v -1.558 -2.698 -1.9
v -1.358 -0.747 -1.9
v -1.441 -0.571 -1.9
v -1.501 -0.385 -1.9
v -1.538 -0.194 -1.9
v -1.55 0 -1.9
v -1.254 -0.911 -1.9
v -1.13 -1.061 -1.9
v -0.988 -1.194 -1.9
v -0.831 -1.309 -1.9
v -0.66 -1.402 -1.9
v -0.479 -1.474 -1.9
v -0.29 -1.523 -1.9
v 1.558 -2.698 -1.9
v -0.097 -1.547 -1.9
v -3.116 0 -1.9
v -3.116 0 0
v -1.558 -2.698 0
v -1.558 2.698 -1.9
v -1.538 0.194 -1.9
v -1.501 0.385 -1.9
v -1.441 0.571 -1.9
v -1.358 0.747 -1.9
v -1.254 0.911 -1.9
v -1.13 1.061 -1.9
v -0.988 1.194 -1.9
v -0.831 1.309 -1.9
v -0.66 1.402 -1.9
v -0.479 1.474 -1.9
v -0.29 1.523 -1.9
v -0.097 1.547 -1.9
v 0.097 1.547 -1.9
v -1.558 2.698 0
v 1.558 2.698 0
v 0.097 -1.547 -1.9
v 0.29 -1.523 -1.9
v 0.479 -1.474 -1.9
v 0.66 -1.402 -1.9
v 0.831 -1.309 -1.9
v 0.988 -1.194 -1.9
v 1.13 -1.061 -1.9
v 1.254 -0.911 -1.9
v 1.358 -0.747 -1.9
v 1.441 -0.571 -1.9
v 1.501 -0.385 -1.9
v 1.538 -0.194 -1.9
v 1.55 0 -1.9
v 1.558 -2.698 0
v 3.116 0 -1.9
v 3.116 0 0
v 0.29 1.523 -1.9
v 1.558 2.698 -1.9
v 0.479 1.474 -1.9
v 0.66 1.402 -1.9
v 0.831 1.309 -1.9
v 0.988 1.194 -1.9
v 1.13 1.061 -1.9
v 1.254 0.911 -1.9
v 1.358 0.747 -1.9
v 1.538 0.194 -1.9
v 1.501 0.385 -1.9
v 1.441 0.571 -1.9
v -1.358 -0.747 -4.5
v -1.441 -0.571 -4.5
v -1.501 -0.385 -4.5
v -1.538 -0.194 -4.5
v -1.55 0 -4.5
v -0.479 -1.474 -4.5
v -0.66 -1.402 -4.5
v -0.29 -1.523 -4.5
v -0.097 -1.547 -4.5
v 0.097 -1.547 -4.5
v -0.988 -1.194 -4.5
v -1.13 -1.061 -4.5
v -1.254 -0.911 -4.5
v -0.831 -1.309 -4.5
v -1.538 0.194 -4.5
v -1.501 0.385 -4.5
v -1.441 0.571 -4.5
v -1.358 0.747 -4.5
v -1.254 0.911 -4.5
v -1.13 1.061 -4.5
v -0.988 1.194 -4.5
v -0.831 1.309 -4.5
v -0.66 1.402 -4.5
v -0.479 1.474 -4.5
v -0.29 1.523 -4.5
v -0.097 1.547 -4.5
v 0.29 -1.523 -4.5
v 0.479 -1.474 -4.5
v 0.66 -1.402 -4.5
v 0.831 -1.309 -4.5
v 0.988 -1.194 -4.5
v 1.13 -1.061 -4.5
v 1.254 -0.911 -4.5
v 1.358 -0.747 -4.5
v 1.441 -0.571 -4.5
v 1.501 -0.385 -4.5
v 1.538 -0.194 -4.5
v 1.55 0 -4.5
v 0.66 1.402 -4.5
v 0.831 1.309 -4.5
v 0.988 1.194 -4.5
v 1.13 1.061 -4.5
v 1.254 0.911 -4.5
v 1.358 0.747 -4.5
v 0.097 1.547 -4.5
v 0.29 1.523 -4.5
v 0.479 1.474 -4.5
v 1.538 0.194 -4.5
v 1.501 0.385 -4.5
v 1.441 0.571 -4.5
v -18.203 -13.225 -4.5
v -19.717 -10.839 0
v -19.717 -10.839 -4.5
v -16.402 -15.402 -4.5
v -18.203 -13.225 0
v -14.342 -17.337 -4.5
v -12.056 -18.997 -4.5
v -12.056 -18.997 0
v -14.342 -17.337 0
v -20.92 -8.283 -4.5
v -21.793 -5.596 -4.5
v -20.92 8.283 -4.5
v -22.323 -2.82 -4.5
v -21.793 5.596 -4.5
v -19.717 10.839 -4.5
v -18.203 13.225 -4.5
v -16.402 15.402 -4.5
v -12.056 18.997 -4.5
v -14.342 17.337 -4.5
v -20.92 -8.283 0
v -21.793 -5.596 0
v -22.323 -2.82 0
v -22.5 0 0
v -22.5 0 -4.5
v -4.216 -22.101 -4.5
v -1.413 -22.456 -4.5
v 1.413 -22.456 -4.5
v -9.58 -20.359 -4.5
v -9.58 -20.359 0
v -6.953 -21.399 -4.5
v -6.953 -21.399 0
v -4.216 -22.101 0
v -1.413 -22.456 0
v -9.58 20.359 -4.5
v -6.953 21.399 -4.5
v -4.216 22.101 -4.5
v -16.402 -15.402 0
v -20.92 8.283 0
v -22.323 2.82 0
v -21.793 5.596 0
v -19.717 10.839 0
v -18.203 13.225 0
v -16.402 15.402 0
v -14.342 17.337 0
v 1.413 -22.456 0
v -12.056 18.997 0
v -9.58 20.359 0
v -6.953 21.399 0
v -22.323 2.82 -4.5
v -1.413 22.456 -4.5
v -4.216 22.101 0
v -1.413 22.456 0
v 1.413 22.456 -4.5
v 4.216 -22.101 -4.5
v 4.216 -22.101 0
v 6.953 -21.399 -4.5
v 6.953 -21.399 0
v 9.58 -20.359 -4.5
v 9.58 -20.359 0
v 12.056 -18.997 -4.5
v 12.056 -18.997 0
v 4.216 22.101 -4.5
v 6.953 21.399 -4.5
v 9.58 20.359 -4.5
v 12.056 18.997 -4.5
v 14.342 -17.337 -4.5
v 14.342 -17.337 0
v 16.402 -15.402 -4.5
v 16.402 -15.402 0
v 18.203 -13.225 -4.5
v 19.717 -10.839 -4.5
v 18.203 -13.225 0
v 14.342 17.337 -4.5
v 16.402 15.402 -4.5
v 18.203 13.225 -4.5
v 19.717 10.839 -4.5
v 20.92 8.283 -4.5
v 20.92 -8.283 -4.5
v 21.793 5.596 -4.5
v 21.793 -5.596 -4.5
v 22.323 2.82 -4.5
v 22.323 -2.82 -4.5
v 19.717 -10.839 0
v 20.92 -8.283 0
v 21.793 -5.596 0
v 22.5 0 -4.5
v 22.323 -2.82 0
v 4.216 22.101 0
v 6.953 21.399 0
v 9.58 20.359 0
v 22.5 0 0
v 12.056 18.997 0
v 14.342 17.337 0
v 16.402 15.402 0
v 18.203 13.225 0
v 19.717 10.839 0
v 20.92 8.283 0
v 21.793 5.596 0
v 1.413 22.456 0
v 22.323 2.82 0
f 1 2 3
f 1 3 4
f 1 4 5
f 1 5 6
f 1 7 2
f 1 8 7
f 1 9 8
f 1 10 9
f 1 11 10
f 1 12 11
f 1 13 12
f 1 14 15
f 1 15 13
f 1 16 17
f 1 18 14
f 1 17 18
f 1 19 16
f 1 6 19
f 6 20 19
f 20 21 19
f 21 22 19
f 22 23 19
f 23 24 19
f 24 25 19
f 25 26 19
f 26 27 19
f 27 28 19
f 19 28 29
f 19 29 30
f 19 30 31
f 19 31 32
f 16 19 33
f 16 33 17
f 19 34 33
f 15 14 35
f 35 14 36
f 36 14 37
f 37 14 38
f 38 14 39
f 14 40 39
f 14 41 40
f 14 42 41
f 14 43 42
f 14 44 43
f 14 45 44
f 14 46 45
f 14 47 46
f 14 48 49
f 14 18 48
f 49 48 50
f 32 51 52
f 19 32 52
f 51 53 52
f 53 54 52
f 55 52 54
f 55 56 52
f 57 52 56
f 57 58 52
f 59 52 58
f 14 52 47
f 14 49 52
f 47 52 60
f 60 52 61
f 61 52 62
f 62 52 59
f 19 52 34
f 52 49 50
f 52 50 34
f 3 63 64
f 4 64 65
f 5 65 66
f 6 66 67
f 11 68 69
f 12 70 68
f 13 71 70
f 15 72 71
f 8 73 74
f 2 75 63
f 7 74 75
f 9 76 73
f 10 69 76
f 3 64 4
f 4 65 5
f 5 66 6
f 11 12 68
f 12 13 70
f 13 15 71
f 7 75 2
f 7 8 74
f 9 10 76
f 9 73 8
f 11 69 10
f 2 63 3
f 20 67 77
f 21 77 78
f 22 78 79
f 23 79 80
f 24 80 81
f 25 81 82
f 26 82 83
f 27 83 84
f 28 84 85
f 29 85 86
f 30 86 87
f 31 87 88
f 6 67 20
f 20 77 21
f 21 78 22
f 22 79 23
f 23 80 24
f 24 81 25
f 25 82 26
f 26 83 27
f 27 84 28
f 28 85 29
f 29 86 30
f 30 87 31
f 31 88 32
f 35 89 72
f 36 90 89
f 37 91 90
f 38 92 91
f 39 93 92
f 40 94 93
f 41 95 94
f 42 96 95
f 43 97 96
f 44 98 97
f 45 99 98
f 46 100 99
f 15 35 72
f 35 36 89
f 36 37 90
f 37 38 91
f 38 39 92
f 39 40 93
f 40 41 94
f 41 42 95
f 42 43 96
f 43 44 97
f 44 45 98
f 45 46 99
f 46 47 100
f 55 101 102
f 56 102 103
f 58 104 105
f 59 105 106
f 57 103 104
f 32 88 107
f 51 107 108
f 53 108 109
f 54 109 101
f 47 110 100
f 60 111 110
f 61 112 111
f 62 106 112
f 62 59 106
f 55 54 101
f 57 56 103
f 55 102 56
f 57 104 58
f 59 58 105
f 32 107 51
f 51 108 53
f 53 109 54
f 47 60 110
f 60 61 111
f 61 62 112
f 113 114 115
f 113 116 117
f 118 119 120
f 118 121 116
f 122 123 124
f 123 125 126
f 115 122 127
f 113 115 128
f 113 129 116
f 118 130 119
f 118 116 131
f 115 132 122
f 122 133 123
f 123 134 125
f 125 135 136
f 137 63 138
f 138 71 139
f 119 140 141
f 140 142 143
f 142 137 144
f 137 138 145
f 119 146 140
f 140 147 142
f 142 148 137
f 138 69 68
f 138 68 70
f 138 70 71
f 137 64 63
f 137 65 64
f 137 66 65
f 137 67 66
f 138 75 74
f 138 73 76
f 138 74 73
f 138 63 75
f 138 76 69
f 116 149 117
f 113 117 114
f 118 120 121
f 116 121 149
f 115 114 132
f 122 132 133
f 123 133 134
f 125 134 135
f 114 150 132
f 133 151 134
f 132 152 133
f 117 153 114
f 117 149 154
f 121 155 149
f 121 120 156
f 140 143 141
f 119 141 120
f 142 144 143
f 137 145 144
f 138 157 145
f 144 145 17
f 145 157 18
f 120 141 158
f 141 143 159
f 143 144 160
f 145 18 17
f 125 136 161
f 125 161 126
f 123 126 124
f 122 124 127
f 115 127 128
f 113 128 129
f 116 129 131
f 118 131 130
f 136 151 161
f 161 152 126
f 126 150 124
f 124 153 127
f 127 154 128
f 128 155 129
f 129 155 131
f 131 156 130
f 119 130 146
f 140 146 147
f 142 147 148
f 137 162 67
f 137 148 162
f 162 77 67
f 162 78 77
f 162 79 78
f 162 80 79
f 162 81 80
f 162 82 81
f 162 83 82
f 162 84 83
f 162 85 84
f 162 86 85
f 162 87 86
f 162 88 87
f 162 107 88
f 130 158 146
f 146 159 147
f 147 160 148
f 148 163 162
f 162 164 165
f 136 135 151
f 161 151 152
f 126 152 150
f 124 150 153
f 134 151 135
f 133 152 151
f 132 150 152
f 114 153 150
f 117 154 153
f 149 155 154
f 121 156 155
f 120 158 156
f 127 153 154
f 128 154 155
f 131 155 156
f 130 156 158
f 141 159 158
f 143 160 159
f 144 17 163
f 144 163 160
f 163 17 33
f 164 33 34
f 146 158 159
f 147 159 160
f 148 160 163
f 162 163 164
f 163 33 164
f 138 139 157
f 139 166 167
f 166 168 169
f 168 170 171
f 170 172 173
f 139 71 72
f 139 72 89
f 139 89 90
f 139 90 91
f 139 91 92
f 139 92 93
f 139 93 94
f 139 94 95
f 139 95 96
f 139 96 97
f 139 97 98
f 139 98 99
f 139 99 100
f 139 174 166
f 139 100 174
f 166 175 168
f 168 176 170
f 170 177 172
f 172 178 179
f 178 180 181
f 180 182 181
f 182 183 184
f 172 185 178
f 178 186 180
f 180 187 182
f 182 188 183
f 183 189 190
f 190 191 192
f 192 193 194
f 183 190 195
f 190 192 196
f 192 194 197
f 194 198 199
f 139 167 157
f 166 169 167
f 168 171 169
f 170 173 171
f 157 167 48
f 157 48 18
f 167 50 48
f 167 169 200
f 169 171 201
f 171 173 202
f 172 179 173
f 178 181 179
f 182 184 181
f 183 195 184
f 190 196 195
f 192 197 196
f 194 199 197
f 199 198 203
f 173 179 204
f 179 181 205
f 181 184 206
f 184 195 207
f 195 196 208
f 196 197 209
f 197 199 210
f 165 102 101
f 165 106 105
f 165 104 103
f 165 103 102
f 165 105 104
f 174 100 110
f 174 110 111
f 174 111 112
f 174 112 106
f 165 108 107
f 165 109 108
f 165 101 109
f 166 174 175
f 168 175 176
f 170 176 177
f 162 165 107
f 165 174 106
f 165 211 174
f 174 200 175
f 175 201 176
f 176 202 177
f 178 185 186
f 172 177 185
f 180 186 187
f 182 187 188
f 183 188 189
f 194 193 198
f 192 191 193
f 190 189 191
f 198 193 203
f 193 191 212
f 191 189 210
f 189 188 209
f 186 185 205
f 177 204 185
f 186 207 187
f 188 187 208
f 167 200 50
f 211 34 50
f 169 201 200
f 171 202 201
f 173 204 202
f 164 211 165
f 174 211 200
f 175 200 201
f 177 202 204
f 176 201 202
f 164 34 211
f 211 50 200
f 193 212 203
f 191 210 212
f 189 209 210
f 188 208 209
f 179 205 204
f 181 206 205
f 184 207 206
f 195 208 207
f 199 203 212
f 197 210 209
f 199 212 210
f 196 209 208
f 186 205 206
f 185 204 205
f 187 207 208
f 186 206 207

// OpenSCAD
$fn = 50;


difference() {
	union() {
		translate(v = [0, 0, -4.5000000000]) {
			cylinder(h = 4.5000000000, r = 22.5000000000);
		}
	}
	union() {
		translate(v = [0, 0, 0]) {
			rotate(a = [0, 0, 0]) {
				difference() {
					union() {
						translate(v = [0, 0, -1.9000000000]) {
							linear_extrude(height = 1.9000000000) {
								polygon(points = [[3.1158000000, 0.0000000000], [1.5579000000, 2.6983619531], [-1.5579000000, 2.6983619531], [-3.1158000000, 0.0000000000], [-1.5579000000, -2.6983619531], [1.5579000000, -2.6983619531]]);
							}
						}
					}
					union();
				}
			}
		}
		#translate(v = [0, 0, -100.0000000000]) {
			cylinder(h = 200, r = 1.5500000000);
		}
	}
}
